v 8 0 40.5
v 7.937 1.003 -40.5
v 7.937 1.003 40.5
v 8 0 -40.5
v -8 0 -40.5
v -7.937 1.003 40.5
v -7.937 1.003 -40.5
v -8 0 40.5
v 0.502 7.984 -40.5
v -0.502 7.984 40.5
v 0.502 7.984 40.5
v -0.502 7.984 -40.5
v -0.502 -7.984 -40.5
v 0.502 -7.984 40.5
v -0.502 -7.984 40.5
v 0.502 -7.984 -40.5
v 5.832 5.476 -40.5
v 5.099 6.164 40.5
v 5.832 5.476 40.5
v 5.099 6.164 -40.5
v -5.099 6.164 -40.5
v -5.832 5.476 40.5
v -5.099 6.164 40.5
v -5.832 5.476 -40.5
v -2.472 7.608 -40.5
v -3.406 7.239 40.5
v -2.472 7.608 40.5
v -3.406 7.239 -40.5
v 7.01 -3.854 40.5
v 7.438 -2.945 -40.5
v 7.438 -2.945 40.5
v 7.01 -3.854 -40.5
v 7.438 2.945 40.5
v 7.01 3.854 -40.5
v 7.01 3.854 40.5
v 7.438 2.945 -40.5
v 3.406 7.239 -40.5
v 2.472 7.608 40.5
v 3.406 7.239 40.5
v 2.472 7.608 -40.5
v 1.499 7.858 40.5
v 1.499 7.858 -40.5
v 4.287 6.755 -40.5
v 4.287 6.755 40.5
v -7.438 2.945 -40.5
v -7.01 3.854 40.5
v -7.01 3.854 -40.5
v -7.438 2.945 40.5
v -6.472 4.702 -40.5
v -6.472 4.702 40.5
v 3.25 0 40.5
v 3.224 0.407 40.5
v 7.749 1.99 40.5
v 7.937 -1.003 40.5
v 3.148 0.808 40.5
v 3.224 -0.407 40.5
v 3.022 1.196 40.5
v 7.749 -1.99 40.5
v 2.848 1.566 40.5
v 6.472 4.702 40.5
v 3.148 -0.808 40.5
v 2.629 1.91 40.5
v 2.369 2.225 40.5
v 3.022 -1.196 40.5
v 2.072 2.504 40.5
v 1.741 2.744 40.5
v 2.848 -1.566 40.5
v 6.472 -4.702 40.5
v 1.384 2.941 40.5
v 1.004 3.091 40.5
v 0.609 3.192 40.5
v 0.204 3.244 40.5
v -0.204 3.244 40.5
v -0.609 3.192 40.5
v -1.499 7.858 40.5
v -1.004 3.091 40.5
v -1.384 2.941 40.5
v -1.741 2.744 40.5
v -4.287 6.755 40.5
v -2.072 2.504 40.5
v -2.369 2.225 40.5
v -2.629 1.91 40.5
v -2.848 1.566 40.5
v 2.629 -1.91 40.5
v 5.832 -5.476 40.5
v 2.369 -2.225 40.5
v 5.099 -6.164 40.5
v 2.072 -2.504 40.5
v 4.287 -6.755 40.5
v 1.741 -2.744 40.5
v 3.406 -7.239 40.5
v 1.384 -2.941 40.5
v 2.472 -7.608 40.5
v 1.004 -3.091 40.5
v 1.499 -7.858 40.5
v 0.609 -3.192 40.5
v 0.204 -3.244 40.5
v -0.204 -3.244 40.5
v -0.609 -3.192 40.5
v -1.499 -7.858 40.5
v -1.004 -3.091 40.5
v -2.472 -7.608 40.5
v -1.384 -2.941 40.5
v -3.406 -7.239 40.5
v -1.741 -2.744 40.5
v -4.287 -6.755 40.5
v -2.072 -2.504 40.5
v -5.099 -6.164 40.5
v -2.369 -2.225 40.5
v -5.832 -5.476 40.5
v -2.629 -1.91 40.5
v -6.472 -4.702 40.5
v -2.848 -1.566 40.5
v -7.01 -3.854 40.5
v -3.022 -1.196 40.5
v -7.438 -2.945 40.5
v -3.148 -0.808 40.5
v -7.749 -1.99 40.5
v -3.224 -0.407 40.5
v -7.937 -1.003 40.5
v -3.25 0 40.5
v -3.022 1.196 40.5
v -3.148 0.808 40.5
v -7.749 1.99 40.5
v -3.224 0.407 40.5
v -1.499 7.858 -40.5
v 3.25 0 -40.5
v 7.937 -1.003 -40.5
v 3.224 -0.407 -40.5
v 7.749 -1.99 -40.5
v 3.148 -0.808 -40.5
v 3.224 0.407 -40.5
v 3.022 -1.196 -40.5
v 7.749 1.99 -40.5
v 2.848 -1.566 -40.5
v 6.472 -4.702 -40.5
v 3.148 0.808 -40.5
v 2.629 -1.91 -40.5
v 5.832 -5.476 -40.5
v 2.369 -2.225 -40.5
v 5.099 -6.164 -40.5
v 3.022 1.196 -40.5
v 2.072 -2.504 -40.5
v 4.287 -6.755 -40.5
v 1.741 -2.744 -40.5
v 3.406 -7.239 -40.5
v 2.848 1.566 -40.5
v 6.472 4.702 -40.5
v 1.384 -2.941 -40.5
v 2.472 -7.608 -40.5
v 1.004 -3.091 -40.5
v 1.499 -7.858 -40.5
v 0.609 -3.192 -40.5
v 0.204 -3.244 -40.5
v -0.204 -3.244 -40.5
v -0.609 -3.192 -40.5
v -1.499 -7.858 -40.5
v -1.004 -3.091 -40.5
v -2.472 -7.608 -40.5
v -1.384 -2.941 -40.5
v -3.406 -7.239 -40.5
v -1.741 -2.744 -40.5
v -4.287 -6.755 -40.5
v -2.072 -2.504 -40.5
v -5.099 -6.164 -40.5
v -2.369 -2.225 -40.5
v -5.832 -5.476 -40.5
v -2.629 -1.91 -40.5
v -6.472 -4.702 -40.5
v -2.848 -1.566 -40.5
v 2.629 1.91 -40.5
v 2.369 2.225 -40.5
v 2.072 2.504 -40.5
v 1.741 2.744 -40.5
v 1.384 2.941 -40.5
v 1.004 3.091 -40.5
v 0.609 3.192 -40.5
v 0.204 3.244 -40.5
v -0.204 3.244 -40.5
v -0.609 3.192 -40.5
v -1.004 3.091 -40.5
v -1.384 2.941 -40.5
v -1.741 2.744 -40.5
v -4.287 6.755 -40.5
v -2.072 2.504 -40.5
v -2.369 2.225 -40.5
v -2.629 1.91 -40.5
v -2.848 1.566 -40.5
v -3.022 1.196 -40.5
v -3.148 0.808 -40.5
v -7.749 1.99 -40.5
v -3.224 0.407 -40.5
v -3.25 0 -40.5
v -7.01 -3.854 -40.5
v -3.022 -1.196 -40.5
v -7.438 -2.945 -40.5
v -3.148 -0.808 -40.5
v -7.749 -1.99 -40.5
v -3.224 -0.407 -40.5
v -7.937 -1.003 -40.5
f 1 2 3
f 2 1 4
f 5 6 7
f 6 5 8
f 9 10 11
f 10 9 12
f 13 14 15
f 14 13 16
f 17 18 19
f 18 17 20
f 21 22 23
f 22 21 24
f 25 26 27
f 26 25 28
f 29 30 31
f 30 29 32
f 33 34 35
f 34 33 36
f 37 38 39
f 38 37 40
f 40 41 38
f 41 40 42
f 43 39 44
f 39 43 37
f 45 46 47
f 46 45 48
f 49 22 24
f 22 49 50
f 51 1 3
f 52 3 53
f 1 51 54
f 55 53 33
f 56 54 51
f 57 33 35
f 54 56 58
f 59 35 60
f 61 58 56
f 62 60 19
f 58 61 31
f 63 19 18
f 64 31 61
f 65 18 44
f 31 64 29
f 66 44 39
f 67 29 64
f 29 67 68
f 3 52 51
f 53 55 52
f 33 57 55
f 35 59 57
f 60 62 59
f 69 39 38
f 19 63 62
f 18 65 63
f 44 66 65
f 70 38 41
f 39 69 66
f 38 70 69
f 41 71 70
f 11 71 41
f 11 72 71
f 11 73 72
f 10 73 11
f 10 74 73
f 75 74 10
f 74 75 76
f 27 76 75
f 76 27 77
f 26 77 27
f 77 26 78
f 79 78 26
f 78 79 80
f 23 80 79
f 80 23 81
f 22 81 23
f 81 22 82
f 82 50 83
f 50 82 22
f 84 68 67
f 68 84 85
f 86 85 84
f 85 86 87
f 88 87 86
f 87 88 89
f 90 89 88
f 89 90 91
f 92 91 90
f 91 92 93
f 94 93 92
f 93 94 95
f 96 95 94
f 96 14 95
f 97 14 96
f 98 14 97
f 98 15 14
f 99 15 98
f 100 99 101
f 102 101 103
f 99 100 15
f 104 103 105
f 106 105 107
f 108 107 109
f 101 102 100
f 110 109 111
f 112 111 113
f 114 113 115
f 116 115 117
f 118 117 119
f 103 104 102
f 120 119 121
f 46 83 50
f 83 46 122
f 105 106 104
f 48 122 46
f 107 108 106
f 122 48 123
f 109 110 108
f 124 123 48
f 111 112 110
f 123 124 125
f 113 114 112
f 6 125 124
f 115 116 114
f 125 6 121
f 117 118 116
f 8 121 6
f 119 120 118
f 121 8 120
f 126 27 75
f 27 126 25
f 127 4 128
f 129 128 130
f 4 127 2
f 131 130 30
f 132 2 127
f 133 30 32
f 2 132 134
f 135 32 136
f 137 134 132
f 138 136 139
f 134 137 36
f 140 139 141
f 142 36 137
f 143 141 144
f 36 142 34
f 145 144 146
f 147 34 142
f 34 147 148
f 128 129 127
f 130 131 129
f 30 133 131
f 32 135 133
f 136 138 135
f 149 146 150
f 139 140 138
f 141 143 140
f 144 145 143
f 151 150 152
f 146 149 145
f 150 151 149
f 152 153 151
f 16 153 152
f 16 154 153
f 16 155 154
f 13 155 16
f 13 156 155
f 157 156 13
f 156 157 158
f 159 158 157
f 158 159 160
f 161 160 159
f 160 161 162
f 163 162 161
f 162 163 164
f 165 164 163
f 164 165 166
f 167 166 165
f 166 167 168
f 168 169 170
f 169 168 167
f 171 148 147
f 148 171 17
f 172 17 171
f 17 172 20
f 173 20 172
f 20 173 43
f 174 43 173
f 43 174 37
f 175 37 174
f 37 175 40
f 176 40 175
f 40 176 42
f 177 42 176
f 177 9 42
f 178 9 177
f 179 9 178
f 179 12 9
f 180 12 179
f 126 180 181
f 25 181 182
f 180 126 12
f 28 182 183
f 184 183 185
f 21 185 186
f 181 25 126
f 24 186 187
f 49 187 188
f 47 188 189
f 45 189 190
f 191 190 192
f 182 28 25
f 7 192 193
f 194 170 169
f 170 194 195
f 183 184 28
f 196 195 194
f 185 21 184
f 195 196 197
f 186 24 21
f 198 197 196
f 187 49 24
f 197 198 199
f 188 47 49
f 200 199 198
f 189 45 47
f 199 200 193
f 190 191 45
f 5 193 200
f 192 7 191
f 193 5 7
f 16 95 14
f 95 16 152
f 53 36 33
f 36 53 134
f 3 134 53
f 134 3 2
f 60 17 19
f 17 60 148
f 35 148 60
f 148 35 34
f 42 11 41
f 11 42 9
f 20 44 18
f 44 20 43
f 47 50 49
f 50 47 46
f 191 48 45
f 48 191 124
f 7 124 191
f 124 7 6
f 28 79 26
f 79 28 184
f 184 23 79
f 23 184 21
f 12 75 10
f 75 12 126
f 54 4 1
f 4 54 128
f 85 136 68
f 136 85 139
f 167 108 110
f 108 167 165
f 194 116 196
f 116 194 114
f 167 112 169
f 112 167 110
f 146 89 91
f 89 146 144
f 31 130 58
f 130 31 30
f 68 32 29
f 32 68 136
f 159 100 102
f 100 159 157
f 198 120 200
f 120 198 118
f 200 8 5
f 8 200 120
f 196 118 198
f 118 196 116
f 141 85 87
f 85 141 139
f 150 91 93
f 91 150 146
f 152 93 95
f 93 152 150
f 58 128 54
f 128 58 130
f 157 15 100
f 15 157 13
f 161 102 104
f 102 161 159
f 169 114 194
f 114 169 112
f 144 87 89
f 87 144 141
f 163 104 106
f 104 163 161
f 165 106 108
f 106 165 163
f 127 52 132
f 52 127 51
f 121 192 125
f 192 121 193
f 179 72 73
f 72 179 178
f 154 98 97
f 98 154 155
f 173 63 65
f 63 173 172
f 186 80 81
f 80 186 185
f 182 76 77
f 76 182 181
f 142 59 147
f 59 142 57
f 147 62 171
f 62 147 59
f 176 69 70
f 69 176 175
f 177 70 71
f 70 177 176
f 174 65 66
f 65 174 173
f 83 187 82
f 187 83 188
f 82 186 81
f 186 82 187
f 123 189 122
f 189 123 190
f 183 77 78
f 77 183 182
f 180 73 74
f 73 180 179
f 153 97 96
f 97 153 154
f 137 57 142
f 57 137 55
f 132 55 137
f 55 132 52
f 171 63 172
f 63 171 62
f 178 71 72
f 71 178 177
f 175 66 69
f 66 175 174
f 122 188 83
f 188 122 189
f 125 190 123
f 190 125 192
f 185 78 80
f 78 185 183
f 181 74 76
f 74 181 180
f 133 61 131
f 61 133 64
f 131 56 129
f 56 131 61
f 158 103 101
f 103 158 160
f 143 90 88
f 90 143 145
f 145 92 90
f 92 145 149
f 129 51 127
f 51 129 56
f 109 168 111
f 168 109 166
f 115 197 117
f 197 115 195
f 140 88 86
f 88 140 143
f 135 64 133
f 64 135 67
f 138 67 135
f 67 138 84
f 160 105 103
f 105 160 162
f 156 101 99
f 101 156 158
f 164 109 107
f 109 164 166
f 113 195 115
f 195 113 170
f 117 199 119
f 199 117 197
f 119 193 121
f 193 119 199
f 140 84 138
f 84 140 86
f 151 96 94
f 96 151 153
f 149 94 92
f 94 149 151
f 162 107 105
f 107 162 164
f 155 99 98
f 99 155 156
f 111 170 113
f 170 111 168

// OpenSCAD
$fn = 50;


difference() {
	union() {
		translate(v = [0, 0, -40.5000000000]) {
			cylinder(h = 81, r = 8.0000000000);
		}
	}
	union() {
		translate(v = [0, 0, -100.0000000000]) {
			cylinder(h = 200, r = 3.2500000000);
		}
	}
}
